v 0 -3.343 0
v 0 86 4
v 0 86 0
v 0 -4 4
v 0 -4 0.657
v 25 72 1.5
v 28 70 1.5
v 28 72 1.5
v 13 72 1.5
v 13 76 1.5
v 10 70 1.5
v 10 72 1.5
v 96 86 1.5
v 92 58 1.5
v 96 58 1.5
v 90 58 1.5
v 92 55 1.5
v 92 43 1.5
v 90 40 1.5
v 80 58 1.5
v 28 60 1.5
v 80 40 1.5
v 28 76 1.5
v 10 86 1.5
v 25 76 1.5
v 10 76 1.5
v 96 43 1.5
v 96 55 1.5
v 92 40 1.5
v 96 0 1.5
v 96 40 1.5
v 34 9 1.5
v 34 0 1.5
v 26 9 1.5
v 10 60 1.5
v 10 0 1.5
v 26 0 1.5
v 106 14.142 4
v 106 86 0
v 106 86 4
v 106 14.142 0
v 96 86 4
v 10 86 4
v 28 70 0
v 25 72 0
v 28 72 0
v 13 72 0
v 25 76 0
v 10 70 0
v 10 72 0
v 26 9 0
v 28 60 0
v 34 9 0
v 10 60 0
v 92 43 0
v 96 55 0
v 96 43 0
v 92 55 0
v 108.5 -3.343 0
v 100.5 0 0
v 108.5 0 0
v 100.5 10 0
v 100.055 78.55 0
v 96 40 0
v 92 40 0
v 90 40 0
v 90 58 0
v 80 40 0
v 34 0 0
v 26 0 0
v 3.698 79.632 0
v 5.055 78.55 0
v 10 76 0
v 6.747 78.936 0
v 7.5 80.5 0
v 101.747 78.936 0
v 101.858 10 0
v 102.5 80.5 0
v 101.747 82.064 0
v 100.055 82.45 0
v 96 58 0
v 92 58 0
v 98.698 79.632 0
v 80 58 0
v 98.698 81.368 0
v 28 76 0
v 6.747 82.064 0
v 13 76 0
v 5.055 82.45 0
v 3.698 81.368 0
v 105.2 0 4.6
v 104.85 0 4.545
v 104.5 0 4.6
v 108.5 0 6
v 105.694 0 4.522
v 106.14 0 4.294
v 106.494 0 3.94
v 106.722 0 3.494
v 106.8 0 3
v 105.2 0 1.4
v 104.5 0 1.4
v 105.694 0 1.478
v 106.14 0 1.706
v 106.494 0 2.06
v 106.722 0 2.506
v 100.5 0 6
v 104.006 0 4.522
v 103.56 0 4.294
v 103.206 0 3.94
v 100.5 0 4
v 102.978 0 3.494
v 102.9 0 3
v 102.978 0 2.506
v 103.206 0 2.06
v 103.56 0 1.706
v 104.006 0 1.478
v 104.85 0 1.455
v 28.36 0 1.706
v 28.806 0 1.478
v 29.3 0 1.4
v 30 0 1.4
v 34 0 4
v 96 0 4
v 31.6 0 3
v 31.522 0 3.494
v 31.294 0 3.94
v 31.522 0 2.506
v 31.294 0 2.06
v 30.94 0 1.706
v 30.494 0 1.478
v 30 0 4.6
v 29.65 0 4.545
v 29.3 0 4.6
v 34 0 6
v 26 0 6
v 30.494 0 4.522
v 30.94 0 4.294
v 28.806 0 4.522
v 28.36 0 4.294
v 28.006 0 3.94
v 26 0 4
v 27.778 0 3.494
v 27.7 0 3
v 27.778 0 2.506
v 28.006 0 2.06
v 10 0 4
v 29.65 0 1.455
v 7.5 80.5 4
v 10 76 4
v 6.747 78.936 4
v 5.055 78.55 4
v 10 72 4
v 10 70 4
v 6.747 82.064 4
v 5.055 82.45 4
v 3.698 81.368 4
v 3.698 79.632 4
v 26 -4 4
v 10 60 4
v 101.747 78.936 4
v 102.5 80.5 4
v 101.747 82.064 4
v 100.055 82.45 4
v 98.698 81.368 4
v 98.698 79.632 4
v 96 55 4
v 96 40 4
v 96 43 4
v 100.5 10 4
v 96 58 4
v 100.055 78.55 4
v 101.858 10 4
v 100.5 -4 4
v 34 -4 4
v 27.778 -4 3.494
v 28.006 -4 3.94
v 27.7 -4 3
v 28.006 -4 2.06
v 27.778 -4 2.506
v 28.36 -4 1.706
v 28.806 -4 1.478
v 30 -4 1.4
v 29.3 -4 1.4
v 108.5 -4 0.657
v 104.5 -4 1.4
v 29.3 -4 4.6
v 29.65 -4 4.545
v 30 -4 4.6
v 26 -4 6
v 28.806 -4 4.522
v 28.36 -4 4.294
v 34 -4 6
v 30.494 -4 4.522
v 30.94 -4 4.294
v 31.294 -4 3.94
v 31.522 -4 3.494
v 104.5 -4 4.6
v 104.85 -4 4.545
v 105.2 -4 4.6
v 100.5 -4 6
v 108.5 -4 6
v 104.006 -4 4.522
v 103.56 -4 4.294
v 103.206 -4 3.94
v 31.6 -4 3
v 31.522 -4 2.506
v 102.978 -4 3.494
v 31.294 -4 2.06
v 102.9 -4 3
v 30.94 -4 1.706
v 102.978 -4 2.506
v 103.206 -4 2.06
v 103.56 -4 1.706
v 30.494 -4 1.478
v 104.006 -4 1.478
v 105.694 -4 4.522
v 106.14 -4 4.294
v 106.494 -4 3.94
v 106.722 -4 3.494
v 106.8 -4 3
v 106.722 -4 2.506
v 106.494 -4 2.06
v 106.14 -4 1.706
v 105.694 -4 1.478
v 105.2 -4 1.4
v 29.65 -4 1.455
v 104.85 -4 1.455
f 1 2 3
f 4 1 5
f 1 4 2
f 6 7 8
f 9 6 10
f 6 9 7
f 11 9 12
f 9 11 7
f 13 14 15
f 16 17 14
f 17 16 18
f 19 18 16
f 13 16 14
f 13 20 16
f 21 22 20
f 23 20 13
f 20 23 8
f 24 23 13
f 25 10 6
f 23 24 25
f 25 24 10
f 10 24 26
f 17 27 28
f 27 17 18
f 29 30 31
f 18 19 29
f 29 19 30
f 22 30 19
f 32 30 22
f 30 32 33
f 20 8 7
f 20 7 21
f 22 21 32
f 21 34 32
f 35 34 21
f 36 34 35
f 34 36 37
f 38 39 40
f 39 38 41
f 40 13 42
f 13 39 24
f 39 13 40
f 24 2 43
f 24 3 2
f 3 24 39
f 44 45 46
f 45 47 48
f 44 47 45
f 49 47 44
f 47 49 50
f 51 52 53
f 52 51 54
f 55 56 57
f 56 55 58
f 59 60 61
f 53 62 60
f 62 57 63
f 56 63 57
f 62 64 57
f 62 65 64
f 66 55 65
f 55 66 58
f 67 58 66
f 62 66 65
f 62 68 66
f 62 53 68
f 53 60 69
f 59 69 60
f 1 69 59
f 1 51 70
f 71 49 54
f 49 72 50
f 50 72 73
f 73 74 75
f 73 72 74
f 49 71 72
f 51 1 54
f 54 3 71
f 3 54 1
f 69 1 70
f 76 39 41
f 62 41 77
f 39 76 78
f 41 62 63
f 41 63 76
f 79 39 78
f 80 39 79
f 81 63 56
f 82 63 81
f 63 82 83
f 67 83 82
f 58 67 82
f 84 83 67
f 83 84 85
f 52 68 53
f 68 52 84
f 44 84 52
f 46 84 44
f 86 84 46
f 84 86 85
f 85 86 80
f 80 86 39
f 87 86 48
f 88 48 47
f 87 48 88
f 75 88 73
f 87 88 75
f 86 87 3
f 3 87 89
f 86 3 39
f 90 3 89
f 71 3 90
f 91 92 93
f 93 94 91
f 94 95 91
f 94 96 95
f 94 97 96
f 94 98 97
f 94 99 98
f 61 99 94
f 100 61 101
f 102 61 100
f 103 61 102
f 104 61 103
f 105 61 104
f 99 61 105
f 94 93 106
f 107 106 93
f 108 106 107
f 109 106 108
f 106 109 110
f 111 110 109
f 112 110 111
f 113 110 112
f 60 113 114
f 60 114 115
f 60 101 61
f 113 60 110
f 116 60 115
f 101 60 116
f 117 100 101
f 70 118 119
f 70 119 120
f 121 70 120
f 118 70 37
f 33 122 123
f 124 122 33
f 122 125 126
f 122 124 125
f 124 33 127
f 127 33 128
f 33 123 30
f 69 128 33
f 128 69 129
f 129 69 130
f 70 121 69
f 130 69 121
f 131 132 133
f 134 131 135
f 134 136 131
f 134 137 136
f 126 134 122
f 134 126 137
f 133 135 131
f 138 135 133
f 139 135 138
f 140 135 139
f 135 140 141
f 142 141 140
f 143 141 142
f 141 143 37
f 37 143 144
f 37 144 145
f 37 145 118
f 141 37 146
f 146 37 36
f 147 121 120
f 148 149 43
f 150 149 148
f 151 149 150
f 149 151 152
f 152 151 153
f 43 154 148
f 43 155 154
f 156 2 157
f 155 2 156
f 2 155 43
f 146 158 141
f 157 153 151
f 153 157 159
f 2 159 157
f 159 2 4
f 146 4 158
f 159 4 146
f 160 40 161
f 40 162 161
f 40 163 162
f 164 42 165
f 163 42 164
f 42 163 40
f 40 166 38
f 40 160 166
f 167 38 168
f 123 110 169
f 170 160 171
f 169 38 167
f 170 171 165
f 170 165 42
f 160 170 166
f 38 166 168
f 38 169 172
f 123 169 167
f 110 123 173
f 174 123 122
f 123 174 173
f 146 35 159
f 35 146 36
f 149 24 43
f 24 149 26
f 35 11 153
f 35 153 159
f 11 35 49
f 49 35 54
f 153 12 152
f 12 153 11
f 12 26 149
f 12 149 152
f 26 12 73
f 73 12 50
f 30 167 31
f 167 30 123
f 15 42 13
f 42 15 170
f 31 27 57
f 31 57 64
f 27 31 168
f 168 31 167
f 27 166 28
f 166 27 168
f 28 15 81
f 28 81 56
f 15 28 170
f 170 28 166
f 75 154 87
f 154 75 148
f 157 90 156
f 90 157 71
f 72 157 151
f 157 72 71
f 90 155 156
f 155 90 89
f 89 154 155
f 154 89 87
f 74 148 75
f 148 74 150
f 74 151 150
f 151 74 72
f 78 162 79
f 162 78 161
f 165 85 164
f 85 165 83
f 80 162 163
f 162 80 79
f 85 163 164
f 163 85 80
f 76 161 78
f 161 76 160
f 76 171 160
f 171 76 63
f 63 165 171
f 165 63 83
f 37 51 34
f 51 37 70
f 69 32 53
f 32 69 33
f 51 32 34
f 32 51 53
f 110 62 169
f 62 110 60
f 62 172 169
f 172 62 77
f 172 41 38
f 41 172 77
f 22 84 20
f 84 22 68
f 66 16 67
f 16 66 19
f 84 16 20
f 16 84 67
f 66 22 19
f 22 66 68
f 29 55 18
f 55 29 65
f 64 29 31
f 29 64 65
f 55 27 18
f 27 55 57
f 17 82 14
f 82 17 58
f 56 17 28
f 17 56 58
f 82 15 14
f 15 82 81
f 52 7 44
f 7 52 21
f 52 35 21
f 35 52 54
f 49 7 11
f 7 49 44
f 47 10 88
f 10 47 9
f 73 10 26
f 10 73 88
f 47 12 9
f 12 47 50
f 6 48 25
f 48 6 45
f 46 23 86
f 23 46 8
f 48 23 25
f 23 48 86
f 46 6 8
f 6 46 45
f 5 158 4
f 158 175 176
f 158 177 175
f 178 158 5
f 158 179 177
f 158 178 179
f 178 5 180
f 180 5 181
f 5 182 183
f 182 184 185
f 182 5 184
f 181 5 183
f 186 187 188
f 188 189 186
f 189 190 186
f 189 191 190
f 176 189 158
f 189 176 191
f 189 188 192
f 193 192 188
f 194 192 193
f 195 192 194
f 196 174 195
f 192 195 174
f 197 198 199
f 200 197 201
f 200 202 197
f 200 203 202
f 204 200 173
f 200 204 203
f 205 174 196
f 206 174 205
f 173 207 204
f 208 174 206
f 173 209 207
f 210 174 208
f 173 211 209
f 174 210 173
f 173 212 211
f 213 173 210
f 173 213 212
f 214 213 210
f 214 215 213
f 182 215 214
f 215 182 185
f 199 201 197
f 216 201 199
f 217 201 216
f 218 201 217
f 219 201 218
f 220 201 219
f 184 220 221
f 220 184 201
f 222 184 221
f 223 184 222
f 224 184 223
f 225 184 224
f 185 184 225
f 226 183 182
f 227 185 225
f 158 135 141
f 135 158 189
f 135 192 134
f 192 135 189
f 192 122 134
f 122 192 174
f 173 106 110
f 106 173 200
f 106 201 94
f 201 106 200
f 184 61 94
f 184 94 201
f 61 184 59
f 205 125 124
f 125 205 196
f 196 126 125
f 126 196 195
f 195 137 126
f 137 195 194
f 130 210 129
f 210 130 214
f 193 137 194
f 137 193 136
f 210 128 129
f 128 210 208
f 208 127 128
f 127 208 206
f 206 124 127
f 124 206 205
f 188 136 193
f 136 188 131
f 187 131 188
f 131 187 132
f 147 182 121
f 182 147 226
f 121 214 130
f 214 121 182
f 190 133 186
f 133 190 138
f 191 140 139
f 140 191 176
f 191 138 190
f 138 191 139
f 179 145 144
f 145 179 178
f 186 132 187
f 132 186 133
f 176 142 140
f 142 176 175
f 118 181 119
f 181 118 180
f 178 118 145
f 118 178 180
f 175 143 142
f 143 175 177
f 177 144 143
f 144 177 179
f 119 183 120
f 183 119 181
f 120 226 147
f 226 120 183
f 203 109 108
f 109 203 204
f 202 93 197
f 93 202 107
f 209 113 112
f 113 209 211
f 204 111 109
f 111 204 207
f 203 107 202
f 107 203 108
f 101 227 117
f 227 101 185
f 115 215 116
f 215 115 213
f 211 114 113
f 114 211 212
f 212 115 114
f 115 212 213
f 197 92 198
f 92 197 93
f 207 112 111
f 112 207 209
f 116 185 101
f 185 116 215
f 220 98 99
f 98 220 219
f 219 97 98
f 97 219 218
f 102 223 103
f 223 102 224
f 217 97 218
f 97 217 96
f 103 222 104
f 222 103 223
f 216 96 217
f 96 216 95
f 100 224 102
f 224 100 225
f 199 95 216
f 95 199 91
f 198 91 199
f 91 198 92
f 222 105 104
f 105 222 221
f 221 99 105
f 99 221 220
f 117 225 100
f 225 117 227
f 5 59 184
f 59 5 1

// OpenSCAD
difference(){
union(){
cube([106,72+14,1.5]);
translate([0,0,0])cube([10,72+14,4]);
translate([96,0,0])cube([10,72+14,4]);
}


// Vzdalenos der 61mm a 95mm
	translate([5.5,5.5,-1]){
	translate([0,61+14,0])cylinder(r=2, h=6);
	translate([95,61+14,0])cylinder(r=2, h=6);
	}
	
	translate([-8+34,0,0])cube([8,9,6]);
	translate([-8+114-5.5,0,0])cube([8,10,6]);
	translate([-8+114+2,2,0])rotate([0,0,45])cube([8,10,6]);
	
	translate([80,40,0])cube([10,18,6]);
	
	translate([92,40,0])cube([4,3,6]);
	translate([92,55,0])cube([4,3,6]);


	translate([10,60,0])cube([18,10,6]);
	translate([10,72,0])cube([3,4,6]);
	translate([25,72,0])cube([3,4,6]);
}

difference(){
union(){
translate([0,-4,0])cube([106,4,4]);
translate([-8+34,-4,0])cube([8,4,6]);
translate([-8+114-5.5,-4,0])cube([8,4,6]);
}

translate([-4,0,0]){
translate([0+34,0,3]) rotate([90,0,0]) cylinder(r=1.6, h=6, $fn=20);
translate([0+34-0.7,0,3]) rotate([90,0,0]) cylinder(r=1.6, h=6, $fn=20);
translate([114-5.5,0,3]) rotate([90,0,0]) cylinder(r=1.6, h=6, $fn=20);
translate([114-5.5+0.7,0,3]) rotate([90,0,0]) cylinder(r=1.6, h=6, $fn=20);
}
translate([-8,-4,-5]) rotate([45,0,0]) cube([122,4,4]);
}

module rambo_mini(){
difference(){
// Velikost pcb 106 a 72
cube([106,72,1]);

	// Vzdalenos der 61mm a 95mm
	translate([5.5,5.5,-1]){
	translate([0,0,0])cylinder(r=1.4, h=3);
	translate([0,61,0])cylinder(r=1.4, h=3);
	translate([95,0,0])cylinder(r=1.4, h=3);
	translate([95,61,0])cylinder(r=1.4, h=3);
	}
}
}
